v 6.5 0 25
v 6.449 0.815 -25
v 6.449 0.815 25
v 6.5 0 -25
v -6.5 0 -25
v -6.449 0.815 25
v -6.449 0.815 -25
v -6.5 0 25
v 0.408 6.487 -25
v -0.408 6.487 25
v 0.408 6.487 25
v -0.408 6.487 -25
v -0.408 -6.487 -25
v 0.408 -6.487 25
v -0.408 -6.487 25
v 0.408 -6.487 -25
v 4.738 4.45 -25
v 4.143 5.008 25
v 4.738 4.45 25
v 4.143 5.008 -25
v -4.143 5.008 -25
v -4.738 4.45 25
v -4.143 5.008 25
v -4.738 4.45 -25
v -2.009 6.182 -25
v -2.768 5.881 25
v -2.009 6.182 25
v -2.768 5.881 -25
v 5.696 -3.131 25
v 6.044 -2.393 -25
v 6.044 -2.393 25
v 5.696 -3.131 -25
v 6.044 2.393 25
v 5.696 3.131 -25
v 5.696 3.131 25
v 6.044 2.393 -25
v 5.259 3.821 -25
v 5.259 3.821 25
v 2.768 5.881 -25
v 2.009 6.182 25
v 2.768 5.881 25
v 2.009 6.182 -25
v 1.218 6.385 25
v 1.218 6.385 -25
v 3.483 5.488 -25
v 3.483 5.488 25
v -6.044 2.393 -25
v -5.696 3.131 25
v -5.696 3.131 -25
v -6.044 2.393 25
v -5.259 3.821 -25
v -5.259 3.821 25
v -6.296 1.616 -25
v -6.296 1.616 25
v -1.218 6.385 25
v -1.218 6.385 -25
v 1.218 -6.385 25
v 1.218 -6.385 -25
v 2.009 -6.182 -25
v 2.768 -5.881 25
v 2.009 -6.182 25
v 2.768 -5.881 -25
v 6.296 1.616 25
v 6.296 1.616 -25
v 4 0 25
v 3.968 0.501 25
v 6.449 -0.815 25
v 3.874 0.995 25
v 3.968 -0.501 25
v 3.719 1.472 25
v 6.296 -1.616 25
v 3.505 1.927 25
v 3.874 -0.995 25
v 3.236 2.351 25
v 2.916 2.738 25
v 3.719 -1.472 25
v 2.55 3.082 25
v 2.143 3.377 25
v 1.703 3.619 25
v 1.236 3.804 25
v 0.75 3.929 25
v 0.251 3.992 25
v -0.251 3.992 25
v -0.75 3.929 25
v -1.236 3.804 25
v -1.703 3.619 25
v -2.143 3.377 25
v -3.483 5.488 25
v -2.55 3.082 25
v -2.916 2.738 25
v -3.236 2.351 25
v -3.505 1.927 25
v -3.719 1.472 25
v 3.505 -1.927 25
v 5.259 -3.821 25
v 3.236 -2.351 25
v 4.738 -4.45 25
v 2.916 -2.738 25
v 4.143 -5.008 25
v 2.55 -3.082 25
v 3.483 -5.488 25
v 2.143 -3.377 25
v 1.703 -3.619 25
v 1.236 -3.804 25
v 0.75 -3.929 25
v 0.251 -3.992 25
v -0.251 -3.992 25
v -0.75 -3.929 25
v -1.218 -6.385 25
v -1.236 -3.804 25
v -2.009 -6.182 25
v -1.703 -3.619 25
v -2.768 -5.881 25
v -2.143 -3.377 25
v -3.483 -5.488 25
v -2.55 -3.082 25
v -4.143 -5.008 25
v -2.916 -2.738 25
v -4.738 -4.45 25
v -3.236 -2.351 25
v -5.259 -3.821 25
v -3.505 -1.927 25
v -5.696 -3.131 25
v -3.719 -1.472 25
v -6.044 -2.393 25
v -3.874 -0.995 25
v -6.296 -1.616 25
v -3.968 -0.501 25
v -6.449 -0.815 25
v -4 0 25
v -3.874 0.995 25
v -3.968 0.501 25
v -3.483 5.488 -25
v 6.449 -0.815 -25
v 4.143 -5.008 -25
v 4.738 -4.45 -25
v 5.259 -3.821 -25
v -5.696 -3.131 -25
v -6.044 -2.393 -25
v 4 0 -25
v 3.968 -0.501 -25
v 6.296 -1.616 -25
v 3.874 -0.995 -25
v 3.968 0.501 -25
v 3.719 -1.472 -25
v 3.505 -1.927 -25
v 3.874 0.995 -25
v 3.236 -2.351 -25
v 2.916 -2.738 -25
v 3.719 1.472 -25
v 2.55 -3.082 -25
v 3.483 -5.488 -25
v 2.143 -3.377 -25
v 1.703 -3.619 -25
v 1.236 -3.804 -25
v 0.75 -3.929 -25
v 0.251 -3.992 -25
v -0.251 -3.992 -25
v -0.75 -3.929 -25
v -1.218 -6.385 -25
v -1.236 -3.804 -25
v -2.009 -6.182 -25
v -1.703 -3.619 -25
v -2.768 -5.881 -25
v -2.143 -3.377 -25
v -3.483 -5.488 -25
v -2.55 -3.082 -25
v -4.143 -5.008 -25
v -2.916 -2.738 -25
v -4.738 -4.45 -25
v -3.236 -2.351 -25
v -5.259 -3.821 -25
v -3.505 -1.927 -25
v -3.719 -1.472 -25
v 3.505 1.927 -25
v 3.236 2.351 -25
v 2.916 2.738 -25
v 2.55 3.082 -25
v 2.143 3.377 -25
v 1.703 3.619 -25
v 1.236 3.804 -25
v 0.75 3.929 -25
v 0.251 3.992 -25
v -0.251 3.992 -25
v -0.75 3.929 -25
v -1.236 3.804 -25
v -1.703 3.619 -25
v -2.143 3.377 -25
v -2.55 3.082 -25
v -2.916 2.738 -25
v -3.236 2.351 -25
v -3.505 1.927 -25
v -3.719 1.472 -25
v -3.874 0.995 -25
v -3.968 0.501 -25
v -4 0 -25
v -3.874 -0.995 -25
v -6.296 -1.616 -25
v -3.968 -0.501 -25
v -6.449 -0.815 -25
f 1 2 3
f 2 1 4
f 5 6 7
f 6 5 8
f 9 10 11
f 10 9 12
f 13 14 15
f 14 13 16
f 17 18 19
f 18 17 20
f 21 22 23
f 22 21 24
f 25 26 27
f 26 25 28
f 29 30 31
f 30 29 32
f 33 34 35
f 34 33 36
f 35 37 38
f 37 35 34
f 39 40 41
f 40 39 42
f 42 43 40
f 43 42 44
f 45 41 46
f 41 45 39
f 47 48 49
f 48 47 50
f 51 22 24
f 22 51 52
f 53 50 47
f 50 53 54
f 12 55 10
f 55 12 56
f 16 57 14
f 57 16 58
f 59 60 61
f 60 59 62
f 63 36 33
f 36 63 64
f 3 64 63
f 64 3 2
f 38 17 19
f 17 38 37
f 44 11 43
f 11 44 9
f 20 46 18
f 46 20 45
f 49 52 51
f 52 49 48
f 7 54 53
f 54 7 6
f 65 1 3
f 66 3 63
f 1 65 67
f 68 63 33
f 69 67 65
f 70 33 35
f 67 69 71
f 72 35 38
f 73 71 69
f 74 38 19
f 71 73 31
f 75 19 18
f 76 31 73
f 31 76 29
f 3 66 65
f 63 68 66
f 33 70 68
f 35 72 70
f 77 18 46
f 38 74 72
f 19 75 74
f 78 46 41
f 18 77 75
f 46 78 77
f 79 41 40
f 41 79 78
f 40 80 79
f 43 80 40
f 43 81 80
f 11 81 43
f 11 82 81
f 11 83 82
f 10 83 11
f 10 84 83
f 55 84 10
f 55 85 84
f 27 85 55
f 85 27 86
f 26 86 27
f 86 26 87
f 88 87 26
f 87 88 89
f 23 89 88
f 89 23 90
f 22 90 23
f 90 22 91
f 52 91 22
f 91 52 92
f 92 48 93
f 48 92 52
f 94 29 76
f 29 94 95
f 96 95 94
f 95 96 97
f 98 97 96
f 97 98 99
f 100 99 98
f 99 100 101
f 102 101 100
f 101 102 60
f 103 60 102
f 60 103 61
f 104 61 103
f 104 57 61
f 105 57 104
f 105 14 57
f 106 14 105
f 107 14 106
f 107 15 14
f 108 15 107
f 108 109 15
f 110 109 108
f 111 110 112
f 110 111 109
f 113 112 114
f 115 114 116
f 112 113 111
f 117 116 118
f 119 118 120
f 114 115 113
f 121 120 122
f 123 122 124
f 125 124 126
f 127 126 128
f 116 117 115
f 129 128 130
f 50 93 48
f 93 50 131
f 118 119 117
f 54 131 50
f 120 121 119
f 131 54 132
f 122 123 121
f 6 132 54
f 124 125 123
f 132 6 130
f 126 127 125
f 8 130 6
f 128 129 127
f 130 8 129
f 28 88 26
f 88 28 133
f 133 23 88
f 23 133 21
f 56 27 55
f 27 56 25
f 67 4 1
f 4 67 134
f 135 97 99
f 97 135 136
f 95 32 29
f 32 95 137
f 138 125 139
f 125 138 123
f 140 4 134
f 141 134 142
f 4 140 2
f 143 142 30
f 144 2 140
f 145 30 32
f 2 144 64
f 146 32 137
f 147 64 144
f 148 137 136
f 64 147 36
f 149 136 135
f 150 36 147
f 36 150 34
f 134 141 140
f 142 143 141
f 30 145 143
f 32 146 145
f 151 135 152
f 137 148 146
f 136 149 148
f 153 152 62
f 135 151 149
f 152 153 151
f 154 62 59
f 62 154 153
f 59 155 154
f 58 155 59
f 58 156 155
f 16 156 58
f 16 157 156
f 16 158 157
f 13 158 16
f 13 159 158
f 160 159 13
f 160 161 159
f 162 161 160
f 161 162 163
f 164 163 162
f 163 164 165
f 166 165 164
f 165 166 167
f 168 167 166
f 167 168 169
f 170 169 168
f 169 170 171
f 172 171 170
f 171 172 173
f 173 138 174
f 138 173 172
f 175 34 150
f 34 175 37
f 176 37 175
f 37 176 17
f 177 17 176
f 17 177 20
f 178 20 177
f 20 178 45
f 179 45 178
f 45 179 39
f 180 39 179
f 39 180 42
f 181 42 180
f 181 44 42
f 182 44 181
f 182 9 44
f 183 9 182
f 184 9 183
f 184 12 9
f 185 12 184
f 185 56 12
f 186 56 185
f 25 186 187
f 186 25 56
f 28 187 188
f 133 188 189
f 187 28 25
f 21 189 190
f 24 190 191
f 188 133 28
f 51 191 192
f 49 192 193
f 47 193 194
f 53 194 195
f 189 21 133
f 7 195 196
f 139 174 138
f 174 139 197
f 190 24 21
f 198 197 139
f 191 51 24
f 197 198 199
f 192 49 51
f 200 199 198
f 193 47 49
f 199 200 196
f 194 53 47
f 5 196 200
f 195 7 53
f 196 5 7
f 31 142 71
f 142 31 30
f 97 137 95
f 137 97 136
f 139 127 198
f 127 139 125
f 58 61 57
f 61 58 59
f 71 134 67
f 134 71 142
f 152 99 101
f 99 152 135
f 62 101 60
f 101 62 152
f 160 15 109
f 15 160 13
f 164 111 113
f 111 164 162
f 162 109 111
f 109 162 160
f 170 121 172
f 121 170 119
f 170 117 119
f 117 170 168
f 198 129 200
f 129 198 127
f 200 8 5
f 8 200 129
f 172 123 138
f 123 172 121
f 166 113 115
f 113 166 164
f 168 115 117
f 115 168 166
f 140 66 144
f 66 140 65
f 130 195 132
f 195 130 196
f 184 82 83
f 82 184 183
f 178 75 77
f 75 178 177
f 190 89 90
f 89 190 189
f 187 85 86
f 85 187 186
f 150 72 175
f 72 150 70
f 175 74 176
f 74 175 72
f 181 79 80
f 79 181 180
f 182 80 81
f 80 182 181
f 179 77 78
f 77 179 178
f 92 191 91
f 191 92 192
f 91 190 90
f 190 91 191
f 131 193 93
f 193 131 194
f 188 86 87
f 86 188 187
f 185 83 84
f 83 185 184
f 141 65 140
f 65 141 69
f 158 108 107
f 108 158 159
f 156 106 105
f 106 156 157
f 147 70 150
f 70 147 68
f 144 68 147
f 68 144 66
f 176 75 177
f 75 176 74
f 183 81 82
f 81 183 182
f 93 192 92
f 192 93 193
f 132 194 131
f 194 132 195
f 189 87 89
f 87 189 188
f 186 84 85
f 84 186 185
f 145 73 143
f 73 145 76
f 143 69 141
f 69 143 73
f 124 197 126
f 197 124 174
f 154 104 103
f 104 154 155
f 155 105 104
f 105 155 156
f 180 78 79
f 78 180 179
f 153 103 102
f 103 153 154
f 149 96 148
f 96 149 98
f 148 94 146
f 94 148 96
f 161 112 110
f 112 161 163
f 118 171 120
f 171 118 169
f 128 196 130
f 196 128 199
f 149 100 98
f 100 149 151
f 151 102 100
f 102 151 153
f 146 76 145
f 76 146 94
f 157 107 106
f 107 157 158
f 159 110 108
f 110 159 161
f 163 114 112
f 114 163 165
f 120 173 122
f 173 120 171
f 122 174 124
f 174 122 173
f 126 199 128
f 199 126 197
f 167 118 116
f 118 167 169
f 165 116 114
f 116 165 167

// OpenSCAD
$fn = 50;


difference() {
	union() {
		translate(v = [0, 0, -25.0000000000]) {
			cylinder(h = 50, r = 6.5000000000);
		}
	}
	union() {
		translate(v = [0, 0, -100.0000000000]) {
			cylinder(h = 200, r = 4);
		}
	}
}
